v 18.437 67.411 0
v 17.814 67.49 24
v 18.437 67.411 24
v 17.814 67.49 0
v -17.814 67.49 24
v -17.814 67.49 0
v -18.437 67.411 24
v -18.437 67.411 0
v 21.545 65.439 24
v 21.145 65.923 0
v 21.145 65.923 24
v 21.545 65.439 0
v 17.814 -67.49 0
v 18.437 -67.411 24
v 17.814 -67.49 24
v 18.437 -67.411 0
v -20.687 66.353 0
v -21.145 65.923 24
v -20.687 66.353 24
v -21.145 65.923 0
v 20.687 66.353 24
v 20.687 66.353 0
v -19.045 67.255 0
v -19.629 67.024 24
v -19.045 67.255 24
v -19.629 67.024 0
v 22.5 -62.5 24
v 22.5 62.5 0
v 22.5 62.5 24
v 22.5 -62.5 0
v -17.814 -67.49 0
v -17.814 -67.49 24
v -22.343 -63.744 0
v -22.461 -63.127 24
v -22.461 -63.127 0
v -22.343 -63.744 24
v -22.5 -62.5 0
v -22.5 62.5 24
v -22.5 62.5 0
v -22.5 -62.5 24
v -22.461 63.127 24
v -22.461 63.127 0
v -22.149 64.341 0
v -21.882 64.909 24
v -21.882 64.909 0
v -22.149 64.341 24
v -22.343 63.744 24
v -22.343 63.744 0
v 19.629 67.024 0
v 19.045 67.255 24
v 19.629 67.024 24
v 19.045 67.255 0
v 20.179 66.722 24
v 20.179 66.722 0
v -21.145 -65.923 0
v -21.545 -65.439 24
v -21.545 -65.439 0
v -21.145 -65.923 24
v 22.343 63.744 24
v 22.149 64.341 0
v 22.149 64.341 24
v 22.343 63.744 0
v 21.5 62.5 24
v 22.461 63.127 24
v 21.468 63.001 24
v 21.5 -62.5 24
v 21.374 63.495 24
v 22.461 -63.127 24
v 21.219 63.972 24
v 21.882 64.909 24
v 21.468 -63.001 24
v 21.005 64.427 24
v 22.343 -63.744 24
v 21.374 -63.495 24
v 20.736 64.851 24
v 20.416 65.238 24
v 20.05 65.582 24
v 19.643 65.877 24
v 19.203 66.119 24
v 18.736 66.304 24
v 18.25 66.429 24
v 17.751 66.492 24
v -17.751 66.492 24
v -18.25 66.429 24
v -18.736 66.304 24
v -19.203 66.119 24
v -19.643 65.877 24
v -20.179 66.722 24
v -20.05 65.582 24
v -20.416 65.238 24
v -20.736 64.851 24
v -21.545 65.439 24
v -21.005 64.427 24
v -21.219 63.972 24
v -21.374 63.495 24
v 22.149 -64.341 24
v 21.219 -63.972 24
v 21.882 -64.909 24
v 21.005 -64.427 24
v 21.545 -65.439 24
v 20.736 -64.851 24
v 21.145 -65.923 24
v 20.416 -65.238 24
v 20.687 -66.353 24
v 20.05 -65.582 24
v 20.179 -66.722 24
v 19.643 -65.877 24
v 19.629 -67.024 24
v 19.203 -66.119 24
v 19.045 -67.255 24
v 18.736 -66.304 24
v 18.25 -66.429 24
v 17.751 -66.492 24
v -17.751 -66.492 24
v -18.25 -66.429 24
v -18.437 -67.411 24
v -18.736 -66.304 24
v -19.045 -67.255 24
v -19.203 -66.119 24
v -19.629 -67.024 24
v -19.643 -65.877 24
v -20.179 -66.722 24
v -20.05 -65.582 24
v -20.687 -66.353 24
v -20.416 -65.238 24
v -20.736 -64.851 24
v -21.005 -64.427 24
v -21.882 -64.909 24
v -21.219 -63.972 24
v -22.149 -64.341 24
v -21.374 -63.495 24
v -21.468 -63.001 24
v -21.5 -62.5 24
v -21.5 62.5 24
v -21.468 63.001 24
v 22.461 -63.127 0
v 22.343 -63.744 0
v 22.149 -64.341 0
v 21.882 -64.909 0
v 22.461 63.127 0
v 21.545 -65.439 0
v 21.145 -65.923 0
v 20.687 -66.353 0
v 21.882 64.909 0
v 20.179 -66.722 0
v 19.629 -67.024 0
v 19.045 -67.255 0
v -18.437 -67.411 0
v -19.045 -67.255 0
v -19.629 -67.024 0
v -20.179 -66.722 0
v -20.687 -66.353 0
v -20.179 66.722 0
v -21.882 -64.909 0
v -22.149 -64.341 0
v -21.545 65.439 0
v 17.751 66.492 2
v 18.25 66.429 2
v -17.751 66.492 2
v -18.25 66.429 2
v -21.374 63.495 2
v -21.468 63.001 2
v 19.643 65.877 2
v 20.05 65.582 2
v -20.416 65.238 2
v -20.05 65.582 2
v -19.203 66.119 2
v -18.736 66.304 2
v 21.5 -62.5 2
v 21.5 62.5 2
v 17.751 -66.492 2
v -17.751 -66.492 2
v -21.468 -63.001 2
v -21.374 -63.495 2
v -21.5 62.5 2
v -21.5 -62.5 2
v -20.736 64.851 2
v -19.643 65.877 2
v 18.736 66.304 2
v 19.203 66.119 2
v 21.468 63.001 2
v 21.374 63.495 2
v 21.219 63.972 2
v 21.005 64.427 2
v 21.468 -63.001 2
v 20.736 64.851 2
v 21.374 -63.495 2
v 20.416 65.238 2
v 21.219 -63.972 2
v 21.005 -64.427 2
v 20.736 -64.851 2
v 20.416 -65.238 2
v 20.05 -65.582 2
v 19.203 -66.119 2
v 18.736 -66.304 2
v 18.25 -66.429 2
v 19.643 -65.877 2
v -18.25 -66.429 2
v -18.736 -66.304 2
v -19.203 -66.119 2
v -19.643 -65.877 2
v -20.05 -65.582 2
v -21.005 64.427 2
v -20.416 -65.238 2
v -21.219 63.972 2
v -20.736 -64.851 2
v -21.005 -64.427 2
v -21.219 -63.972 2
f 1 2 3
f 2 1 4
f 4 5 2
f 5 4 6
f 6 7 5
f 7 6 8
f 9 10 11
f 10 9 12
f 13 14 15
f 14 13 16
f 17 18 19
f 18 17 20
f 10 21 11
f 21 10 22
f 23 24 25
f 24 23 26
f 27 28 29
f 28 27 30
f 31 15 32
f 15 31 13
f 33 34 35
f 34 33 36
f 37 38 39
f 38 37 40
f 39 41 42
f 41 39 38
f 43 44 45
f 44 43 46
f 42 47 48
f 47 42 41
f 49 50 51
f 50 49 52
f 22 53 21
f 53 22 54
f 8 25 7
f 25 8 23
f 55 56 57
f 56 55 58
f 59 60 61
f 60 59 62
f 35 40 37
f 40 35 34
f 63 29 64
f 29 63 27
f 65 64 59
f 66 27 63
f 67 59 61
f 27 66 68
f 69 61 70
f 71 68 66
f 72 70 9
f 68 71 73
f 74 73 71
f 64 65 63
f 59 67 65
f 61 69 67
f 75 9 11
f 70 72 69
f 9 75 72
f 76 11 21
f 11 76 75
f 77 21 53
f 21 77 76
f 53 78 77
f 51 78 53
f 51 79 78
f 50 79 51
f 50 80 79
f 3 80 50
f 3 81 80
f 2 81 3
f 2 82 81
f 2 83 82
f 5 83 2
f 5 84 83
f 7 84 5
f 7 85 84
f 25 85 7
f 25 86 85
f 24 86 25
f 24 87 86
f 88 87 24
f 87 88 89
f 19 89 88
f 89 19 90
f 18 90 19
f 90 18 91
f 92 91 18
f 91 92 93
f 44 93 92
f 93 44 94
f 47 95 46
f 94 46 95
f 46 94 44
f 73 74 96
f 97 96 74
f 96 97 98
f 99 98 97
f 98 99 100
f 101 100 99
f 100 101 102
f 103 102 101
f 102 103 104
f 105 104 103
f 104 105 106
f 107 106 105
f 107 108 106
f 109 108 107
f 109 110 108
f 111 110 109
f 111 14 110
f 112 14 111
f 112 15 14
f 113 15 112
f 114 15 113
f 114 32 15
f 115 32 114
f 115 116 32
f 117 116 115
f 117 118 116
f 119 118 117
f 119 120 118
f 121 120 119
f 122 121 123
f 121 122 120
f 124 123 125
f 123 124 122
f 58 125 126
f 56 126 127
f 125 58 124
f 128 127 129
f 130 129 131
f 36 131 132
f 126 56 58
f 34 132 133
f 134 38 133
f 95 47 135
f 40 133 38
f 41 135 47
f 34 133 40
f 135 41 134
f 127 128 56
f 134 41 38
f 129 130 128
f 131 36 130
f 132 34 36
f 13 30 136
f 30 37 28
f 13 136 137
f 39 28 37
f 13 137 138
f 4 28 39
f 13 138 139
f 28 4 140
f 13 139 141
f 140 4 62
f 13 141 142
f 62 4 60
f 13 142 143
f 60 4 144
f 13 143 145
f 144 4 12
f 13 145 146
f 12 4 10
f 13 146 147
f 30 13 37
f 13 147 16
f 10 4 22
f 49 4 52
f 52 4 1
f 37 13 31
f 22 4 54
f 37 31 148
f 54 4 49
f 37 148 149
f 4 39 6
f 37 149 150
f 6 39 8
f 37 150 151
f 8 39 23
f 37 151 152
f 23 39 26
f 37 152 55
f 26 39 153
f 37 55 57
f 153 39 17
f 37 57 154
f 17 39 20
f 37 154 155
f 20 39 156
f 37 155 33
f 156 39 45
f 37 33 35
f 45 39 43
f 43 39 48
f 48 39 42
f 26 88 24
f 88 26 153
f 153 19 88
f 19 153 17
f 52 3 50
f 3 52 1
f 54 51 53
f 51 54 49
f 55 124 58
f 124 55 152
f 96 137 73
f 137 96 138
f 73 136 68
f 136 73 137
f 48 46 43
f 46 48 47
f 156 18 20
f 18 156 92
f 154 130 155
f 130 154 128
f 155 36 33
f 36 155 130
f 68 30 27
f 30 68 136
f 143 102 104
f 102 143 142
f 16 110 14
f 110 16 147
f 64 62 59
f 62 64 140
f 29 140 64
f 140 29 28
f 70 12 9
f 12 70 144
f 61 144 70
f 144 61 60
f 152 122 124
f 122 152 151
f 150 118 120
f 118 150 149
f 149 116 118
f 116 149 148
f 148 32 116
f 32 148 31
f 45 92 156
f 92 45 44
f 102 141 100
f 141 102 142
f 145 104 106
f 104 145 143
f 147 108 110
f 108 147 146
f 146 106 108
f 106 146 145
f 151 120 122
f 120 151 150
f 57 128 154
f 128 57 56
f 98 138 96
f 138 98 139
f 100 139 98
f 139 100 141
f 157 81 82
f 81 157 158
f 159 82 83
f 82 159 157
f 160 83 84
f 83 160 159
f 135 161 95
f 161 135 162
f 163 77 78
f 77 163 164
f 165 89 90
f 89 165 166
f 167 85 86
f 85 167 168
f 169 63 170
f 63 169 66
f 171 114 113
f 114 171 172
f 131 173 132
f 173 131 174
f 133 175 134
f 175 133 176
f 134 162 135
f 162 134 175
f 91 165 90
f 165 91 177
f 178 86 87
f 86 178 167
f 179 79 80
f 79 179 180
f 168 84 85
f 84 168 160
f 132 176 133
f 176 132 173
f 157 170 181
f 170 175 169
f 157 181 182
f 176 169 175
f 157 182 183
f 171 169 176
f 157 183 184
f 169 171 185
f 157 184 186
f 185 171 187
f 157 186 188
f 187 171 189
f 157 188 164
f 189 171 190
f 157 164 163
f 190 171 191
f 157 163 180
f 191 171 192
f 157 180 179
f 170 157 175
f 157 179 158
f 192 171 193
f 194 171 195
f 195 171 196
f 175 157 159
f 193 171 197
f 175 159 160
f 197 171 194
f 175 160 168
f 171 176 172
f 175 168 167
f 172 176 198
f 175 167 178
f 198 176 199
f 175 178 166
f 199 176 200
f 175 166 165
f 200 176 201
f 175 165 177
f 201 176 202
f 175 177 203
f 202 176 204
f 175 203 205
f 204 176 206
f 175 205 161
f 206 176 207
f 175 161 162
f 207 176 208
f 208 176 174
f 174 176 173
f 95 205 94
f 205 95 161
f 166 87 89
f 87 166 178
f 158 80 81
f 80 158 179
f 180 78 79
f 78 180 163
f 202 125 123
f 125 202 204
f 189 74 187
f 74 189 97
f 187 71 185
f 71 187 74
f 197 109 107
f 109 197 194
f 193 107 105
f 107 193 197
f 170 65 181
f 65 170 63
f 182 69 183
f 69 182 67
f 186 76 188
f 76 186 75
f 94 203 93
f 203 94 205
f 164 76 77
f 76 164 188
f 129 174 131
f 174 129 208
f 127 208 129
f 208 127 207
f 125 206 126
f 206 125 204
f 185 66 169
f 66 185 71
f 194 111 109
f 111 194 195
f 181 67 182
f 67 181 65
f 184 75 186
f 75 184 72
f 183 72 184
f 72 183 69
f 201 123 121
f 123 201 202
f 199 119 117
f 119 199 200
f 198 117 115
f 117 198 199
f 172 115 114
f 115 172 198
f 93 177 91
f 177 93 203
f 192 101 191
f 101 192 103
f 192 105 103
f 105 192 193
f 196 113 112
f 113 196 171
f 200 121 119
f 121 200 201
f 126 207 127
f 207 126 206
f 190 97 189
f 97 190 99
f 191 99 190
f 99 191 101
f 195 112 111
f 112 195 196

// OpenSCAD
$fn = 50;


difference() {
	union() {
		hull() {
			translate(v = [-17.5000000000, 62.5000000000, 0]) {
				cylinder(h = 24, r = 5);
			}
			translate(v = [17.5000000000, 62.5000000000, 0]) {
				cylinder(h = 24, r = 5);
			}
			translate(v = [-17.5000000000, -62.5000000000, 0]) {
				cylinder(h = 24, r = 5);
			}
			translate(v = [17.5000000000, -62.5000000000, 0]) {
				cylinder(h = 24, r = 5);
			}
		}
	}
	union() {
		translate(v = [0, 0, 2]) {
			hull() {
				translate(v = [-17.5000000000, 62.5000000000, 0]) {
					cylinder(h = 22, r = 4);
				}
				translate(v = [17.5000000000, 62.5000000000, 0]) {
					cylinder(h = 22, r = 4);
				}
				translate(v = [-17.5000000000, -62.5000000000, 0]) {
					cylinder(h = 22, r = 4);
				}
				translate(v = [17.5000000000, -62.5000000000, 0]) {
					cylinder(h = 22, r = 4);
				}
			}
		}
	}
}
